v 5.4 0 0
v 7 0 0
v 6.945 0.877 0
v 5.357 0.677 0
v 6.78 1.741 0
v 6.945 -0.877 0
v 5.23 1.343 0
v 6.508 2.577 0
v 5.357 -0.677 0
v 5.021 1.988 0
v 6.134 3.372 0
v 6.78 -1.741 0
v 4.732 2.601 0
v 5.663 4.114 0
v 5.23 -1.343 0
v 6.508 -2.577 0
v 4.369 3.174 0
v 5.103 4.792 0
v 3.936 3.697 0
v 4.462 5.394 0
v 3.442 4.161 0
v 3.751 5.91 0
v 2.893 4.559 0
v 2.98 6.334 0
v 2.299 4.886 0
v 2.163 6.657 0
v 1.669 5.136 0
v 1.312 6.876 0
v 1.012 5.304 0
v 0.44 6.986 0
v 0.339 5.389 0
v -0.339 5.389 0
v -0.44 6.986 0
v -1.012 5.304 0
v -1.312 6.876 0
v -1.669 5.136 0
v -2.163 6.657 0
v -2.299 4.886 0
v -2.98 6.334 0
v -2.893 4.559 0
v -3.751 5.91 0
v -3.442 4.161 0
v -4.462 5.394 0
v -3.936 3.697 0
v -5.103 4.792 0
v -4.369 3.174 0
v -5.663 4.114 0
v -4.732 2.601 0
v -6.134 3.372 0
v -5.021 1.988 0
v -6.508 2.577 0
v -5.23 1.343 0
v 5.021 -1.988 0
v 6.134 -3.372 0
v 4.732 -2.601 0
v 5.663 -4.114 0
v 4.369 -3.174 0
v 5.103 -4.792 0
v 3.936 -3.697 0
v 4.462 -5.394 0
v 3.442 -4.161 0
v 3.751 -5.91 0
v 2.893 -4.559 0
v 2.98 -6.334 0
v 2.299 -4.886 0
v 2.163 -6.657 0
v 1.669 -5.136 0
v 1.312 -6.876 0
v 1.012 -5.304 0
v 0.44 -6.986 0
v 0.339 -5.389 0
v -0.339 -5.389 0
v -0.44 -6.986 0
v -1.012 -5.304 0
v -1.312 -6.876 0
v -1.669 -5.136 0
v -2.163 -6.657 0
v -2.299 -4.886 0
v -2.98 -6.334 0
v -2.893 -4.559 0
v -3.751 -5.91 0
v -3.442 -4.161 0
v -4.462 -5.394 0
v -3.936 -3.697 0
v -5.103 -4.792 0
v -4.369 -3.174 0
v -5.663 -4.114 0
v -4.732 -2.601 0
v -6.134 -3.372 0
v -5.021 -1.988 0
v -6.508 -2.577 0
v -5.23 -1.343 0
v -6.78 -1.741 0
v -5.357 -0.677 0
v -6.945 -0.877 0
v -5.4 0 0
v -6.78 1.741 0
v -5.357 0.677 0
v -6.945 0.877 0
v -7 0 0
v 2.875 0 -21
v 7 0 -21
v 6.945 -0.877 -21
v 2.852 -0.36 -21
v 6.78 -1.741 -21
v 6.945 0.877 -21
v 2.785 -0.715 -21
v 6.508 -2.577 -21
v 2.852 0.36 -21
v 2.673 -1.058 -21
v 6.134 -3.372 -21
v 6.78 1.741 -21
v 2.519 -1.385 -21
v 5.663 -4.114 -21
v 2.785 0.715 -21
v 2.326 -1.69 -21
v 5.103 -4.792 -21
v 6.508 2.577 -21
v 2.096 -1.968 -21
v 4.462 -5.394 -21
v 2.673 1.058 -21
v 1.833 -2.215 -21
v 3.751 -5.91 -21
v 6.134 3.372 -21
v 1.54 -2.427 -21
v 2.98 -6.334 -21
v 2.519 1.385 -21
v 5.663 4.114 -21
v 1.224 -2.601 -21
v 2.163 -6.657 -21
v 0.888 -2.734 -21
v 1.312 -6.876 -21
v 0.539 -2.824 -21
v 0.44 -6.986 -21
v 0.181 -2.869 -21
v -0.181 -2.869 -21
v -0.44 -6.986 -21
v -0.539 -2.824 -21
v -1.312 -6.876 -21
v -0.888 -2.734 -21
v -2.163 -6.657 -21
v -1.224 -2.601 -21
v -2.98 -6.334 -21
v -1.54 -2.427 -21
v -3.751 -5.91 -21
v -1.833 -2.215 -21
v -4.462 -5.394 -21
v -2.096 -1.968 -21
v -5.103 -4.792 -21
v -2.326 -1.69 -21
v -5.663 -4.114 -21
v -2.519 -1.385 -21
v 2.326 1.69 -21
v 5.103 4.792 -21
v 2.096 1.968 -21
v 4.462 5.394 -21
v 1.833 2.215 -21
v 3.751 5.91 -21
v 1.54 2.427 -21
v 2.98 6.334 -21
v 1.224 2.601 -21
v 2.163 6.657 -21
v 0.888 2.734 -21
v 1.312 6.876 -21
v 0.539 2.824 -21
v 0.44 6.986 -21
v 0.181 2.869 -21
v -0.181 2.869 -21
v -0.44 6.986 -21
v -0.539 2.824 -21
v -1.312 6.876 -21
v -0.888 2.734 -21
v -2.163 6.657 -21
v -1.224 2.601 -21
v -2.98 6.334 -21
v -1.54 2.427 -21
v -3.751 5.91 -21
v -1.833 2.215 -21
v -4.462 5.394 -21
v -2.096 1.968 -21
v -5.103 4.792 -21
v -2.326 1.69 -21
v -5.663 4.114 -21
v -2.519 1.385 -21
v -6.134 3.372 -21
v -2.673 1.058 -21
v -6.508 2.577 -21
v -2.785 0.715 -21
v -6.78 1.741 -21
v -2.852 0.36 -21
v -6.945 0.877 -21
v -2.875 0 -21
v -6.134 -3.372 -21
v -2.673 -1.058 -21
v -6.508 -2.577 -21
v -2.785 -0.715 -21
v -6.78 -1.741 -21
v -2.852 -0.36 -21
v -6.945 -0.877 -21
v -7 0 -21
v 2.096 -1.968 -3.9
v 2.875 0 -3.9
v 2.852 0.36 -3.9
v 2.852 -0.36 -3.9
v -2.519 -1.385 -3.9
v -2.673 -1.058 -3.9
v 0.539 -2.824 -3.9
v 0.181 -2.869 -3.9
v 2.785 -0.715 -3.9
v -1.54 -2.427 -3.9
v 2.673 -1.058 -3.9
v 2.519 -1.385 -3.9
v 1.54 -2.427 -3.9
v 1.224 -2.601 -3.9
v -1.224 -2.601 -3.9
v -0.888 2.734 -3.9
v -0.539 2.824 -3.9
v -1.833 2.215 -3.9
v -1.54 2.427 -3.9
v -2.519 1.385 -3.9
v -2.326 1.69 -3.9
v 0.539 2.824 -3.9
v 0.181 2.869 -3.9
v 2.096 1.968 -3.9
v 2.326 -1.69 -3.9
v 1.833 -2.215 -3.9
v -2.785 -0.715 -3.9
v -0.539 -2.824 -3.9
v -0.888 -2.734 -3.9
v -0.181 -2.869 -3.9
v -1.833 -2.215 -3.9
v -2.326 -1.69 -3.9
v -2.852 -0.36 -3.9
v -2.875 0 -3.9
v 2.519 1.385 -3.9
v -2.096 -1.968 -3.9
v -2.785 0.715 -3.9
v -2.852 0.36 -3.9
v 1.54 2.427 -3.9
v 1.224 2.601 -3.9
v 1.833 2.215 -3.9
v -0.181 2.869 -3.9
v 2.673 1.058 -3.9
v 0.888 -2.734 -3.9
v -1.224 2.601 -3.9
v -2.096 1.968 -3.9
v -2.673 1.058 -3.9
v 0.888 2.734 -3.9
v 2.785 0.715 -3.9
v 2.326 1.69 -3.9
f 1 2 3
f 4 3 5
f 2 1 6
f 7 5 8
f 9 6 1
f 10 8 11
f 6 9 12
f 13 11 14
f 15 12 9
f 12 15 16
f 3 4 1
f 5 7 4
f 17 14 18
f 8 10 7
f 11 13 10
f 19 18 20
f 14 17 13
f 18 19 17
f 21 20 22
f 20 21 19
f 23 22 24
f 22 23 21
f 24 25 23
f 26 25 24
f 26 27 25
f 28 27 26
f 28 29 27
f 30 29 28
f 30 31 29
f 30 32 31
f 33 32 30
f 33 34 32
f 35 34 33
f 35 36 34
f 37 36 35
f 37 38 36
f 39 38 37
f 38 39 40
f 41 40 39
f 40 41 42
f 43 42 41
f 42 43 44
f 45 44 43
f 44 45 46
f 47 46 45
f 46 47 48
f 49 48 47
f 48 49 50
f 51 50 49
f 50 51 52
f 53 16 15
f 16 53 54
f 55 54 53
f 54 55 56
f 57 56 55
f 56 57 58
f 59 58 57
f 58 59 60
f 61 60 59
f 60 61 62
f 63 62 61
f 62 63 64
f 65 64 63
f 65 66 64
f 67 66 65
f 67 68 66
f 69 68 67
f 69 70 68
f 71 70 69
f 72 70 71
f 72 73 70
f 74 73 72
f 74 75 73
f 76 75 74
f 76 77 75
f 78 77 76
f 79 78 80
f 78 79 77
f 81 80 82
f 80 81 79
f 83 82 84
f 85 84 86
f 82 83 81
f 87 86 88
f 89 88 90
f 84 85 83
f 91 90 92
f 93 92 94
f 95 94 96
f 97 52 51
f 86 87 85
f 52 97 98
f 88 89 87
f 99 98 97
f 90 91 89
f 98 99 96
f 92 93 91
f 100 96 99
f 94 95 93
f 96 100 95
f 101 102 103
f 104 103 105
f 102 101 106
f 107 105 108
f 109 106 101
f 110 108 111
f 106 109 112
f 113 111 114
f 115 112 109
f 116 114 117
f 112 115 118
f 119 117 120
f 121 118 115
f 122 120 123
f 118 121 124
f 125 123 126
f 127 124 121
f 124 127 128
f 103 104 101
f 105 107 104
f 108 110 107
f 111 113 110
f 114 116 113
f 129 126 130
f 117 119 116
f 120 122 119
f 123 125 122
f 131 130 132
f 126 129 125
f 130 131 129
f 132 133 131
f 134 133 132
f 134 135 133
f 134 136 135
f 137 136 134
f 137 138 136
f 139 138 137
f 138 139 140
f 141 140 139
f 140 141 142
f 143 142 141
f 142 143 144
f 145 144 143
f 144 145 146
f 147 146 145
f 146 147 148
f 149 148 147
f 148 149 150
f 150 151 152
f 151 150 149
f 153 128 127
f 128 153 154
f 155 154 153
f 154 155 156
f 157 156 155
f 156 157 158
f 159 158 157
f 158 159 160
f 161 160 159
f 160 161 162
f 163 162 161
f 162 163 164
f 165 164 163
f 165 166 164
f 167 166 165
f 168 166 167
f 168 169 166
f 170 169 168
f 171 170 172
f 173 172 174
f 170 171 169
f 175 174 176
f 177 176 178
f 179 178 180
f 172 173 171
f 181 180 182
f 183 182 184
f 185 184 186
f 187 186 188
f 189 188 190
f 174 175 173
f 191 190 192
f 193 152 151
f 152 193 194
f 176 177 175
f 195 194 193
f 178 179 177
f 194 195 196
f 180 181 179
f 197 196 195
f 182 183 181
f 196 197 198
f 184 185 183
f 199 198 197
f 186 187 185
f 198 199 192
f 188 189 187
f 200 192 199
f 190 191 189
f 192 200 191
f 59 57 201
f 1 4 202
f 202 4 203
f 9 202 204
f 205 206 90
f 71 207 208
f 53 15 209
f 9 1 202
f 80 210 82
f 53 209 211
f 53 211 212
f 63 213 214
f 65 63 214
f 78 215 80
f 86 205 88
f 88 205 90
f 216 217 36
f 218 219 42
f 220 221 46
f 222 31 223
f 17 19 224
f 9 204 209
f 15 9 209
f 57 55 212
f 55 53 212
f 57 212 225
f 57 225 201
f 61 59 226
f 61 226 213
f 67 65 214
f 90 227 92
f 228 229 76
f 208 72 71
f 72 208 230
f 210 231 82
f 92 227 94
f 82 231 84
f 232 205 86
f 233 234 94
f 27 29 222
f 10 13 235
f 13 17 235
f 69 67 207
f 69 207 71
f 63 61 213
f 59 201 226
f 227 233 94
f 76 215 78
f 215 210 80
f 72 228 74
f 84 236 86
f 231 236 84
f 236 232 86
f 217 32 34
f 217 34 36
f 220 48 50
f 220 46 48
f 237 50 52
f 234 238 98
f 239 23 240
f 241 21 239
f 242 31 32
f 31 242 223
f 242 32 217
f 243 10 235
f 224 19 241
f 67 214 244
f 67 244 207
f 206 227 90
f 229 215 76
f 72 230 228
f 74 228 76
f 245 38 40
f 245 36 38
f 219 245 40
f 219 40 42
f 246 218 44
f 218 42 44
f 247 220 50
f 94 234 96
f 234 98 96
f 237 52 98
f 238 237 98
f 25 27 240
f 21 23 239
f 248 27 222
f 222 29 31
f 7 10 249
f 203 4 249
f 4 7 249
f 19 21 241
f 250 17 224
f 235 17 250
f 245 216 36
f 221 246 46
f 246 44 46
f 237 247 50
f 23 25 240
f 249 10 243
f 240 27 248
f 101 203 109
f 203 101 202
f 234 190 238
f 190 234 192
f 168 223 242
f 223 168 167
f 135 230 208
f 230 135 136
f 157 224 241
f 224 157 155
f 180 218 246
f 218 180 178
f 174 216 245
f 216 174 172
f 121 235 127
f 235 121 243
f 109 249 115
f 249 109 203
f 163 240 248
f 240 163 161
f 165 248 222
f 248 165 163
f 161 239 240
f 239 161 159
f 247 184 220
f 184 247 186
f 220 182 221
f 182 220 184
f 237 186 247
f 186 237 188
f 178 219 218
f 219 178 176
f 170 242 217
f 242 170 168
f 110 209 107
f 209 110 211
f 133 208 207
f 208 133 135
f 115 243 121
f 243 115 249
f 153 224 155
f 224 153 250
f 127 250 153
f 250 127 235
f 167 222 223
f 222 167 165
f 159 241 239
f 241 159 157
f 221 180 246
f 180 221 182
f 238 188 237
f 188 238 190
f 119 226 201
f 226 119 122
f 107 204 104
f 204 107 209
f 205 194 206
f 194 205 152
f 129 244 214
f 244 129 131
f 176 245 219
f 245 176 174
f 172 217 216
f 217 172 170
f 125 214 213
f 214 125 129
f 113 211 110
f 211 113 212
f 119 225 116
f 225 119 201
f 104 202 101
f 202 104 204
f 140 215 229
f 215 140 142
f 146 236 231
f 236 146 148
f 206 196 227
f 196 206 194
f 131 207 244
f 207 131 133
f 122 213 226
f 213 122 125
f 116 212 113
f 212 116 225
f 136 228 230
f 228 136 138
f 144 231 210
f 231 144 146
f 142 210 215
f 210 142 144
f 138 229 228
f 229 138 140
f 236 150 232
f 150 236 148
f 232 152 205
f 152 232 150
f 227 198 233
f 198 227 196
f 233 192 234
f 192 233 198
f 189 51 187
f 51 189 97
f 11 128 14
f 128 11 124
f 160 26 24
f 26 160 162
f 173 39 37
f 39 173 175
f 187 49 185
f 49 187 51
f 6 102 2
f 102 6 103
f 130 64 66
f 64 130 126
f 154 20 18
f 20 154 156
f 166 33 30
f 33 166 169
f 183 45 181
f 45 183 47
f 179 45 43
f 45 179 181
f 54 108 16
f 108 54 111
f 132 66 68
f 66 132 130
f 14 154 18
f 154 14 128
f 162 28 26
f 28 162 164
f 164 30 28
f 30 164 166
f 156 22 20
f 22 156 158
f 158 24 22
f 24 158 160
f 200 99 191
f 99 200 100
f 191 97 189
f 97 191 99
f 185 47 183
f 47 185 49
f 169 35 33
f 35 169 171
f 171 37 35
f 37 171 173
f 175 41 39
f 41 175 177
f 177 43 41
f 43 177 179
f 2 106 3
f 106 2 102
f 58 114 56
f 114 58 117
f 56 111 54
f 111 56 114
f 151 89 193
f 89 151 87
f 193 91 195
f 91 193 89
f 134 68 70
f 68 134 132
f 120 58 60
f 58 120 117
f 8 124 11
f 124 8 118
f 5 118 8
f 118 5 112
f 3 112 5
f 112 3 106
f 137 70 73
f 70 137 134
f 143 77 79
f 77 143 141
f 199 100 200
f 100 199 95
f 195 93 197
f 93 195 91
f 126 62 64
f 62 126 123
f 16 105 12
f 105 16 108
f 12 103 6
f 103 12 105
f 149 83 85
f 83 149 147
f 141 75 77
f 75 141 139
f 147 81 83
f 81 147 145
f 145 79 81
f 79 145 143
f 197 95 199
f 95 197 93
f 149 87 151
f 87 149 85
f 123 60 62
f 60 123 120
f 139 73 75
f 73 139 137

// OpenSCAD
$fn = 50;


difference() {
	union() {
		translate(v = [0, 0, -21.0000000000]) {
			cylinder(h = 21, r = 7.0000000000);
		}
		cylinder(h = 0, r = 13.0000000000);
	}
	union() {
		translate(v = [0, 0, 0]) {
			rotate(a = [0, 0, 0]) {
				difference() {
					union() {
						#translate(v = [0, 0, -21.0000000000]) {
							cylinder(h = 21, r = 2.6000000000);
						}
						#translate(v = [0, 0, -3.9000000000]) {
							cylinder(h = 3.9000000000, r = 7.0000000000, r1 = 2.8750000000, r2 = 5.4000000000);
						}
						#translate(v = [0, 0, -21.0000000000]) {
							cylinder(h = 21, r = 2.8750000000);
						}
						#translate(v = [0, 0, -21.0000000000]) {
							cylinder(h = 21, r = 2.6000000000);
						}
					}
					union();
				}
			}
		}
	}
}
